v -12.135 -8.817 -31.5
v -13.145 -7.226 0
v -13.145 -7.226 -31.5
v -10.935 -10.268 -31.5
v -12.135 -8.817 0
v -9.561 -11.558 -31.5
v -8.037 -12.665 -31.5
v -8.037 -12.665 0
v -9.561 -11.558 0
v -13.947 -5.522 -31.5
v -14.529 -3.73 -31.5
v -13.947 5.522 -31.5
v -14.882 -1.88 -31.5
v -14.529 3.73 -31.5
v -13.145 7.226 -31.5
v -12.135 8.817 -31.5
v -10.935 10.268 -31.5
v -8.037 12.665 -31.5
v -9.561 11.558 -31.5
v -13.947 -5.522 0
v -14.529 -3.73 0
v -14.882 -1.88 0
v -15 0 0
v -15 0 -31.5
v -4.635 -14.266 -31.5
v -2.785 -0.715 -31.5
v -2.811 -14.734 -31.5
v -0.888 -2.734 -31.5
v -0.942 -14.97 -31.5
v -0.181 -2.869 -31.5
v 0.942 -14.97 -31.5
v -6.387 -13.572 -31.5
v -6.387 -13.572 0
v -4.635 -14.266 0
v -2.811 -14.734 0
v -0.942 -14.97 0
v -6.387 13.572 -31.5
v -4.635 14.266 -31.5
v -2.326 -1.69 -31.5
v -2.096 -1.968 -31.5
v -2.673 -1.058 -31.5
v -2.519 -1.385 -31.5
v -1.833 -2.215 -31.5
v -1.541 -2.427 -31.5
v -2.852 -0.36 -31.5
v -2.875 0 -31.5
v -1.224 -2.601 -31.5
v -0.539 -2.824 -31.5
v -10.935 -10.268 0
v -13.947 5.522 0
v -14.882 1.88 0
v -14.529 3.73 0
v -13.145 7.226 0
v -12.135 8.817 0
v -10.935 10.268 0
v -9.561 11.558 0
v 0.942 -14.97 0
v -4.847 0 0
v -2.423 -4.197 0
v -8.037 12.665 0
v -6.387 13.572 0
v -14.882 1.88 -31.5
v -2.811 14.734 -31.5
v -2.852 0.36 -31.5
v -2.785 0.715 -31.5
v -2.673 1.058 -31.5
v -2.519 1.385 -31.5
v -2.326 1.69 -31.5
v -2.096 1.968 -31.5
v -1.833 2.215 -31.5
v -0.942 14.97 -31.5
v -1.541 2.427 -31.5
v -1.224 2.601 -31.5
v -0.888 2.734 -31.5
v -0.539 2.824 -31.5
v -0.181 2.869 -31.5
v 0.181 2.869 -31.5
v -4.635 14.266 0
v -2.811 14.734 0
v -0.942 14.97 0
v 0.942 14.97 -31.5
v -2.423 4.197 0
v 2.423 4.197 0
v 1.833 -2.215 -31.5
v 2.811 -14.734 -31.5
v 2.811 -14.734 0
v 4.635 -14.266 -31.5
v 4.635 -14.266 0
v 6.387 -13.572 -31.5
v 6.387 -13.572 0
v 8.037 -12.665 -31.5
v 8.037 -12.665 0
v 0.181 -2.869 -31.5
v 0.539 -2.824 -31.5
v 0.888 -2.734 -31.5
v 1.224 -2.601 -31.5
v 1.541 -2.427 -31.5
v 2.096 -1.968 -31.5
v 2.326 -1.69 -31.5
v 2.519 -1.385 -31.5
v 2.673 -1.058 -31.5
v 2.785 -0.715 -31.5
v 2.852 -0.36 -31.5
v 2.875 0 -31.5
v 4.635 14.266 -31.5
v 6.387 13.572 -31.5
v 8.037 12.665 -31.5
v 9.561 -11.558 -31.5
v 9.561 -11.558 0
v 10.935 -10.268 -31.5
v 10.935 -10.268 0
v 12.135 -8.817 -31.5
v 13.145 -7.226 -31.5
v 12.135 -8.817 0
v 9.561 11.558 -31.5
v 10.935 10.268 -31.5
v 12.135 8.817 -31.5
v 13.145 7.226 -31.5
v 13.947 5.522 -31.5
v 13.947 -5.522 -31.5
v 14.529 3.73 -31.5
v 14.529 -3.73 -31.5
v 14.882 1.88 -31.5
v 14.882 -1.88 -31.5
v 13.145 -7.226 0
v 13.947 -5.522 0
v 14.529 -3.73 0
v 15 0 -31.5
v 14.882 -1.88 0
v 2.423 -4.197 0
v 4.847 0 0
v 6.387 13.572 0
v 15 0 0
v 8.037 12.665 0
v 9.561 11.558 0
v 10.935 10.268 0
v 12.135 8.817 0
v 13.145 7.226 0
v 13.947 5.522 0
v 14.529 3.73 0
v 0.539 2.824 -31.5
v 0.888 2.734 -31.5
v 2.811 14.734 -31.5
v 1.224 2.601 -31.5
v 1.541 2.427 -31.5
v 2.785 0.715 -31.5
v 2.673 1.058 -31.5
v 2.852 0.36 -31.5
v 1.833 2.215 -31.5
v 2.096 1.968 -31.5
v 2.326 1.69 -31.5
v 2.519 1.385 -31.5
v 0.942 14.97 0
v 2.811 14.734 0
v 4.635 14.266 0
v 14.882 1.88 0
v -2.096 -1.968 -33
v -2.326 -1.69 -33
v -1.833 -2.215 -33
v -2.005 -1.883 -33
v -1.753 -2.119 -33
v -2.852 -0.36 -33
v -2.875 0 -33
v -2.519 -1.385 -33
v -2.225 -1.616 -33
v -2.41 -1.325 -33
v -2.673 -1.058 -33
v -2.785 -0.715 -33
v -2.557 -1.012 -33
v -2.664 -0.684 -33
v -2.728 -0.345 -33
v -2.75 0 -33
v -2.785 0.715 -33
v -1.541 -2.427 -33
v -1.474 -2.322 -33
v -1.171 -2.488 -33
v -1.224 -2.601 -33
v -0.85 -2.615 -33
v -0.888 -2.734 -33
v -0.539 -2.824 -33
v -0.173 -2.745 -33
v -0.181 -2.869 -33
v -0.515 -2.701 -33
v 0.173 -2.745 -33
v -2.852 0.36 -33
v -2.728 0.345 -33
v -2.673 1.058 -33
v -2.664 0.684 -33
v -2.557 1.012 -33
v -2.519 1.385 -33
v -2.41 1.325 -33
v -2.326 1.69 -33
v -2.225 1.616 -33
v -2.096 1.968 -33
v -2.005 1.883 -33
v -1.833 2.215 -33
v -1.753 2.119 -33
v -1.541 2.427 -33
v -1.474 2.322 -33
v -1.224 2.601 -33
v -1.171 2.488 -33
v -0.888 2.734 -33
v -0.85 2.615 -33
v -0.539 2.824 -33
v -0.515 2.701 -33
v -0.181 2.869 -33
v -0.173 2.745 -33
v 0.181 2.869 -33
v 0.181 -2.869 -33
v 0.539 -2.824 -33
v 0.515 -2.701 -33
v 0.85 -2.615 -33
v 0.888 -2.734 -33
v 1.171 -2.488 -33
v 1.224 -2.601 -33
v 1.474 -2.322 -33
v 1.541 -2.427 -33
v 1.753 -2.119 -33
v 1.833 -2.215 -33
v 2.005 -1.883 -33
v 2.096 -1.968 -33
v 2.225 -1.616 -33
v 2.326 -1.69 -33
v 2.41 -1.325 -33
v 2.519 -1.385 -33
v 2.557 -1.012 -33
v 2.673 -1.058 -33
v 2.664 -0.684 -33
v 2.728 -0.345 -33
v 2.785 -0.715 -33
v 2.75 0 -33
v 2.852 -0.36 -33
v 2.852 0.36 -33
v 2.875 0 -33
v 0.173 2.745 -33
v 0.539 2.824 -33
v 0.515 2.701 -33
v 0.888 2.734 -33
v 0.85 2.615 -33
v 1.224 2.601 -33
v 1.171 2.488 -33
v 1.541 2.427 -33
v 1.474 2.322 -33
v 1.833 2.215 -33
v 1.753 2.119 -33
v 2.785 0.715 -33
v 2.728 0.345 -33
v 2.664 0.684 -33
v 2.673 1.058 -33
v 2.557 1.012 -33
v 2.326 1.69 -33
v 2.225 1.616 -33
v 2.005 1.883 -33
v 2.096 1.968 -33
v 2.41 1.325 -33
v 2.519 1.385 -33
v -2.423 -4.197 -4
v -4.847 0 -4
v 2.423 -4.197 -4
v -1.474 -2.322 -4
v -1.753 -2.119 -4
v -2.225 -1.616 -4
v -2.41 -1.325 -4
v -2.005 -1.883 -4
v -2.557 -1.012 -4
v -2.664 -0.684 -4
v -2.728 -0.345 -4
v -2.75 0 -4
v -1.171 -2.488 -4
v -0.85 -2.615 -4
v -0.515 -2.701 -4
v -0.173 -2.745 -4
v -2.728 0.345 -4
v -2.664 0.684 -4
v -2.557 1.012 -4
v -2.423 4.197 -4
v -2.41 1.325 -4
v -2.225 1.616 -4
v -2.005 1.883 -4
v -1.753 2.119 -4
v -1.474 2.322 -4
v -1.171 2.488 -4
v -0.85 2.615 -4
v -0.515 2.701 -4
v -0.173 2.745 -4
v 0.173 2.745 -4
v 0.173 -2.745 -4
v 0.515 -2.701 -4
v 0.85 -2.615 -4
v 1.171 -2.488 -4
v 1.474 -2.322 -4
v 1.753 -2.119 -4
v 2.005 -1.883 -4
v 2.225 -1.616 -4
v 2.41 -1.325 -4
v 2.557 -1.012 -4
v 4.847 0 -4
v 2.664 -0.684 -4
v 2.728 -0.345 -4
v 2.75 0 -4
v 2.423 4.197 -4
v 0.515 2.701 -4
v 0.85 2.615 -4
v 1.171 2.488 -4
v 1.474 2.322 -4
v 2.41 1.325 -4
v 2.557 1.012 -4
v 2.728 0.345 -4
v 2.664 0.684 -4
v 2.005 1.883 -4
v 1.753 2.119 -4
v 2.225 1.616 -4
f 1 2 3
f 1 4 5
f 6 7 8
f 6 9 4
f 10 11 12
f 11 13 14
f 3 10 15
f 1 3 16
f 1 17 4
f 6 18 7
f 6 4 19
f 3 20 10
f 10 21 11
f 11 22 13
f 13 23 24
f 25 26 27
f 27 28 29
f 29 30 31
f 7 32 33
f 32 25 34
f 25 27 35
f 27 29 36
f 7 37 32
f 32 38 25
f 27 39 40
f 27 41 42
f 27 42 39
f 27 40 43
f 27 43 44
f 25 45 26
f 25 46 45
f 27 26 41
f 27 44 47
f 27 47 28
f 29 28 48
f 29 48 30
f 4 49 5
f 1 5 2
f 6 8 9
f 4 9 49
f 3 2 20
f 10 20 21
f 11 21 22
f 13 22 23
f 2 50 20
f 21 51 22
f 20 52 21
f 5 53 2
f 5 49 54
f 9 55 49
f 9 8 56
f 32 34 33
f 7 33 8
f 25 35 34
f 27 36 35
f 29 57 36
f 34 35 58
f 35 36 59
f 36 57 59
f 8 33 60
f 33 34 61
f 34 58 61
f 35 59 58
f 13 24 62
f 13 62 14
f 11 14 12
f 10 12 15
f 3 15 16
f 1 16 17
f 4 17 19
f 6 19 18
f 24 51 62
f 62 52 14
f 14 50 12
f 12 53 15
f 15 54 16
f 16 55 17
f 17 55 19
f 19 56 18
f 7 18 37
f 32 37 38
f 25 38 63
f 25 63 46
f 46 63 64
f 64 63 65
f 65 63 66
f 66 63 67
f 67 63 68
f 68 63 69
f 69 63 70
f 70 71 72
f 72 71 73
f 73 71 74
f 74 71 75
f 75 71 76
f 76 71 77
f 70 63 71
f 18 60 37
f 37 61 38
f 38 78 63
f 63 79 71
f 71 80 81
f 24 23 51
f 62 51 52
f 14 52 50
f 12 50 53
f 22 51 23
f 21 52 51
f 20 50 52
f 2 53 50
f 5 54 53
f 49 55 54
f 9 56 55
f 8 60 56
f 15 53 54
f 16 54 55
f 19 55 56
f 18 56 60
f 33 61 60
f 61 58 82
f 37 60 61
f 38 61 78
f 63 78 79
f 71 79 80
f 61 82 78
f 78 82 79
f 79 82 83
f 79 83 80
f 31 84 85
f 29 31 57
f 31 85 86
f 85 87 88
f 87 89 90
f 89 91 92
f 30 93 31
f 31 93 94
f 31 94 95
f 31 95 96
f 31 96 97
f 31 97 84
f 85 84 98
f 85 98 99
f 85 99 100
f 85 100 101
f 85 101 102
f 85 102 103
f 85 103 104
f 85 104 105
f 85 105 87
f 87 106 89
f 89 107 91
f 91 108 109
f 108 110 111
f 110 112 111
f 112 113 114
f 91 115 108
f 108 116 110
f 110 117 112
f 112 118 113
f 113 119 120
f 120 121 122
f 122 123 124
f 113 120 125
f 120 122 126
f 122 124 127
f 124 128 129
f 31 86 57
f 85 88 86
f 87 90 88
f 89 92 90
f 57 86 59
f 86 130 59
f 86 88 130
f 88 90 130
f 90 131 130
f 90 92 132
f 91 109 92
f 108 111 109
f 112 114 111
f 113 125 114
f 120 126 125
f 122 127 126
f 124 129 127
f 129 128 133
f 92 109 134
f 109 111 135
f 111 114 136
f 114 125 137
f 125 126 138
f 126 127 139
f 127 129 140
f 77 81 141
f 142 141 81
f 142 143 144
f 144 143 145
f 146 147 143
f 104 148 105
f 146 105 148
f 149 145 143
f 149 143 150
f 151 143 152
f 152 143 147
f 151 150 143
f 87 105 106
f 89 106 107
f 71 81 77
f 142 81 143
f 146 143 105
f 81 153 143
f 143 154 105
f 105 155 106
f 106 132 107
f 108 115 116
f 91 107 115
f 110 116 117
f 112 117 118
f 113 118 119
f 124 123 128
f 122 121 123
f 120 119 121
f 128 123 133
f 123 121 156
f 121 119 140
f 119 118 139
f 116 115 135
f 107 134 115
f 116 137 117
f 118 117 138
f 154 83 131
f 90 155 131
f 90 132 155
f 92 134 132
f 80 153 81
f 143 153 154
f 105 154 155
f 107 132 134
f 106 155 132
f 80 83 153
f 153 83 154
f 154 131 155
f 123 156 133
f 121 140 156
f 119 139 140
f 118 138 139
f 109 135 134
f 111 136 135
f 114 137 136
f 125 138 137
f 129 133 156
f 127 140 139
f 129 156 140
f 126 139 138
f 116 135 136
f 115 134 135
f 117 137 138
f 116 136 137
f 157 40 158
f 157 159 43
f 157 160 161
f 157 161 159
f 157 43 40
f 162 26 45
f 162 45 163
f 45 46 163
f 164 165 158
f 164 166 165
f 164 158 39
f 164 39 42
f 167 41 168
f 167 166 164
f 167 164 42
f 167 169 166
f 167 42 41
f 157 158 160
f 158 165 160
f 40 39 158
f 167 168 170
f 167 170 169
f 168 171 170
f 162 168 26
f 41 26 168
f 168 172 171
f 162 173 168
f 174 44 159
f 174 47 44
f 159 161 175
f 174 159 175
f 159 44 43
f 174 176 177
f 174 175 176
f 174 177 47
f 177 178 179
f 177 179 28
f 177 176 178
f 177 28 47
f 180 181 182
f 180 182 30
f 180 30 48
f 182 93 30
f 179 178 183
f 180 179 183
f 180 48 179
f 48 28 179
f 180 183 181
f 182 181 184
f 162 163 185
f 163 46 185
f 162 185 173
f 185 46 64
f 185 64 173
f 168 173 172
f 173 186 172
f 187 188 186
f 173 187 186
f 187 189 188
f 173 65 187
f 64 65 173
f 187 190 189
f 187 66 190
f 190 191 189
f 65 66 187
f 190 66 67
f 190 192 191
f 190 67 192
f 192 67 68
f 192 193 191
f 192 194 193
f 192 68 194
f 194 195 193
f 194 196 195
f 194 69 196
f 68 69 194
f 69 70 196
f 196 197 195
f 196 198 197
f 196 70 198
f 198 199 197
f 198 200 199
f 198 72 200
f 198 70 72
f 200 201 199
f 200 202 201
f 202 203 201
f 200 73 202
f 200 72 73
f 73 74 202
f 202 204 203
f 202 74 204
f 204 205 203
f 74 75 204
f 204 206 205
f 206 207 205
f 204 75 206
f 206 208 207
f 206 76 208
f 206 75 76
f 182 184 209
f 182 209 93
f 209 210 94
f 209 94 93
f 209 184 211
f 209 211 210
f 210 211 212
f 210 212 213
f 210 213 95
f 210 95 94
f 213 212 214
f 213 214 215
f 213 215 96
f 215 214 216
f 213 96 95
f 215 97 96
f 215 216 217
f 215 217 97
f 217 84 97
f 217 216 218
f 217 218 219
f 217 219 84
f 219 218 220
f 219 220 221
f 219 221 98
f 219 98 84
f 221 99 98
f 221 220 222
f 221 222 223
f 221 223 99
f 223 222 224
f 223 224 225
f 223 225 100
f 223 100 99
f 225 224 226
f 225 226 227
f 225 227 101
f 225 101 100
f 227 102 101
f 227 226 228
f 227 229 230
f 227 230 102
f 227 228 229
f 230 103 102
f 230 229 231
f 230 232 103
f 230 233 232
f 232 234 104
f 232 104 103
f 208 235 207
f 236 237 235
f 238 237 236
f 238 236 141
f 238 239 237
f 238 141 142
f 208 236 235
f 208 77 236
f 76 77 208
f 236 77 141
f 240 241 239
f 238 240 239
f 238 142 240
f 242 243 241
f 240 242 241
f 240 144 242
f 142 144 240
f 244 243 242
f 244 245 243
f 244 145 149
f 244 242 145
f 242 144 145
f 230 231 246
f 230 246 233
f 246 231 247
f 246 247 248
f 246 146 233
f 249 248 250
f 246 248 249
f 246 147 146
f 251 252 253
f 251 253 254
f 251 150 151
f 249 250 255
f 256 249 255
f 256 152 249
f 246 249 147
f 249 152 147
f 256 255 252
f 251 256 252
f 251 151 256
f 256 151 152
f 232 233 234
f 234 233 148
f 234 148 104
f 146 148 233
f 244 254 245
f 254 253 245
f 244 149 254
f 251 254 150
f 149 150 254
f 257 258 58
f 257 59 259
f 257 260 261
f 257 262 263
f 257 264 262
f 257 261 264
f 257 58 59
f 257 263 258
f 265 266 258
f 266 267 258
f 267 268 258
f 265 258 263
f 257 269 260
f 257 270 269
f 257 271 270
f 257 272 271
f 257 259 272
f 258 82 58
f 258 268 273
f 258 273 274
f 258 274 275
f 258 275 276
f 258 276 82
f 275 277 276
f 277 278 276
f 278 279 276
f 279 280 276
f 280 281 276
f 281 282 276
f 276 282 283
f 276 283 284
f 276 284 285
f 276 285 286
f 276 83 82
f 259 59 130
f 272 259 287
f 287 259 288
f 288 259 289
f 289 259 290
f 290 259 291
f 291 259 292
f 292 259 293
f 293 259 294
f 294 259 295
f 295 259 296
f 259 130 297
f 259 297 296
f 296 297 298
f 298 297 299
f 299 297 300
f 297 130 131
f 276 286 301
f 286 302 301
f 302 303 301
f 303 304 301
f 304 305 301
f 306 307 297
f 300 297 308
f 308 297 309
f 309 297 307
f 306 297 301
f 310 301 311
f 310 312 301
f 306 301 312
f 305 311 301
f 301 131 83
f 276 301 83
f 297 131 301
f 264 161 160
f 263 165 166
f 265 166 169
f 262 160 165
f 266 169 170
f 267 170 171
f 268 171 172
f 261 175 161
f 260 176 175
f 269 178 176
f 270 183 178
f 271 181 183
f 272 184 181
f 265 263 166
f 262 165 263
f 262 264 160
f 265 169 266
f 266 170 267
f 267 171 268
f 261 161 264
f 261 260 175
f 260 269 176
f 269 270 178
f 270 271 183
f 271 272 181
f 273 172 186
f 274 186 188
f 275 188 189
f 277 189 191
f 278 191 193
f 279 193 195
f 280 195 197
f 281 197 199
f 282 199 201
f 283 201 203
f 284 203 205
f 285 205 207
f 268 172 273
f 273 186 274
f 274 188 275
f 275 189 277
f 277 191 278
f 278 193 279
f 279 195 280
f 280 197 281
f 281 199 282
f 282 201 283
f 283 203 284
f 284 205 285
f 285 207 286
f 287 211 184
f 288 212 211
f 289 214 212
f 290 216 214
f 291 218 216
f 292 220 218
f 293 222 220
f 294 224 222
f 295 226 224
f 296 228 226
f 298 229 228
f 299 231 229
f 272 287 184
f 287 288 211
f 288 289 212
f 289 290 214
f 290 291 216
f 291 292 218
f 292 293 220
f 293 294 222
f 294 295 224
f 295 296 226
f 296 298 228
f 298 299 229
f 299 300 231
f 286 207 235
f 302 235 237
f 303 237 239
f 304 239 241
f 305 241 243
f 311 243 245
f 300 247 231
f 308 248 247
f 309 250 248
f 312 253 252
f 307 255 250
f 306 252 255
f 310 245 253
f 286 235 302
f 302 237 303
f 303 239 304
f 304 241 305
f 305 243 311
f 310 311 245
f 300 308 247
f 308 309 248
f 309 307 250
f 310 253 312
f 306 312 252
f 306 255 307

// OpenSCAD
$fn = 50;

difference() {
	union() {
		translate(v = [0, 0, -31.5]) {
			cylinder(h = 31.5, r = 15.0);
		}
		#translate(v = [0, 0, -33.0]) {
			cylinder(h = 33, r = 2.875);
		}
	}
	union() {
		translate(v = [0, 0, 0]) {
			rotate(a = [0, 0, 0]) {
				difference() {
					union() {
						translate(v = [0, 0, -4]) {
							linear_extrude(height = 4) {
								polygon(points = [[4.8468, 0.0], [2.4234000000000004, 4.197451927062417], [-2.423399999999999, 4.197451927062417], [-4.8468, 5.935618106107392e-16], [-2.423400000000002, -4.197451927062416], [2.423399999999997, -4.197451927062419]]);
							}
						}
					}
					union();
				}
			}
		}
		#translate(v = [0, 0, -100.0]) {
			cylinder(h = 200, r = 2.75);
		}
	}
}
